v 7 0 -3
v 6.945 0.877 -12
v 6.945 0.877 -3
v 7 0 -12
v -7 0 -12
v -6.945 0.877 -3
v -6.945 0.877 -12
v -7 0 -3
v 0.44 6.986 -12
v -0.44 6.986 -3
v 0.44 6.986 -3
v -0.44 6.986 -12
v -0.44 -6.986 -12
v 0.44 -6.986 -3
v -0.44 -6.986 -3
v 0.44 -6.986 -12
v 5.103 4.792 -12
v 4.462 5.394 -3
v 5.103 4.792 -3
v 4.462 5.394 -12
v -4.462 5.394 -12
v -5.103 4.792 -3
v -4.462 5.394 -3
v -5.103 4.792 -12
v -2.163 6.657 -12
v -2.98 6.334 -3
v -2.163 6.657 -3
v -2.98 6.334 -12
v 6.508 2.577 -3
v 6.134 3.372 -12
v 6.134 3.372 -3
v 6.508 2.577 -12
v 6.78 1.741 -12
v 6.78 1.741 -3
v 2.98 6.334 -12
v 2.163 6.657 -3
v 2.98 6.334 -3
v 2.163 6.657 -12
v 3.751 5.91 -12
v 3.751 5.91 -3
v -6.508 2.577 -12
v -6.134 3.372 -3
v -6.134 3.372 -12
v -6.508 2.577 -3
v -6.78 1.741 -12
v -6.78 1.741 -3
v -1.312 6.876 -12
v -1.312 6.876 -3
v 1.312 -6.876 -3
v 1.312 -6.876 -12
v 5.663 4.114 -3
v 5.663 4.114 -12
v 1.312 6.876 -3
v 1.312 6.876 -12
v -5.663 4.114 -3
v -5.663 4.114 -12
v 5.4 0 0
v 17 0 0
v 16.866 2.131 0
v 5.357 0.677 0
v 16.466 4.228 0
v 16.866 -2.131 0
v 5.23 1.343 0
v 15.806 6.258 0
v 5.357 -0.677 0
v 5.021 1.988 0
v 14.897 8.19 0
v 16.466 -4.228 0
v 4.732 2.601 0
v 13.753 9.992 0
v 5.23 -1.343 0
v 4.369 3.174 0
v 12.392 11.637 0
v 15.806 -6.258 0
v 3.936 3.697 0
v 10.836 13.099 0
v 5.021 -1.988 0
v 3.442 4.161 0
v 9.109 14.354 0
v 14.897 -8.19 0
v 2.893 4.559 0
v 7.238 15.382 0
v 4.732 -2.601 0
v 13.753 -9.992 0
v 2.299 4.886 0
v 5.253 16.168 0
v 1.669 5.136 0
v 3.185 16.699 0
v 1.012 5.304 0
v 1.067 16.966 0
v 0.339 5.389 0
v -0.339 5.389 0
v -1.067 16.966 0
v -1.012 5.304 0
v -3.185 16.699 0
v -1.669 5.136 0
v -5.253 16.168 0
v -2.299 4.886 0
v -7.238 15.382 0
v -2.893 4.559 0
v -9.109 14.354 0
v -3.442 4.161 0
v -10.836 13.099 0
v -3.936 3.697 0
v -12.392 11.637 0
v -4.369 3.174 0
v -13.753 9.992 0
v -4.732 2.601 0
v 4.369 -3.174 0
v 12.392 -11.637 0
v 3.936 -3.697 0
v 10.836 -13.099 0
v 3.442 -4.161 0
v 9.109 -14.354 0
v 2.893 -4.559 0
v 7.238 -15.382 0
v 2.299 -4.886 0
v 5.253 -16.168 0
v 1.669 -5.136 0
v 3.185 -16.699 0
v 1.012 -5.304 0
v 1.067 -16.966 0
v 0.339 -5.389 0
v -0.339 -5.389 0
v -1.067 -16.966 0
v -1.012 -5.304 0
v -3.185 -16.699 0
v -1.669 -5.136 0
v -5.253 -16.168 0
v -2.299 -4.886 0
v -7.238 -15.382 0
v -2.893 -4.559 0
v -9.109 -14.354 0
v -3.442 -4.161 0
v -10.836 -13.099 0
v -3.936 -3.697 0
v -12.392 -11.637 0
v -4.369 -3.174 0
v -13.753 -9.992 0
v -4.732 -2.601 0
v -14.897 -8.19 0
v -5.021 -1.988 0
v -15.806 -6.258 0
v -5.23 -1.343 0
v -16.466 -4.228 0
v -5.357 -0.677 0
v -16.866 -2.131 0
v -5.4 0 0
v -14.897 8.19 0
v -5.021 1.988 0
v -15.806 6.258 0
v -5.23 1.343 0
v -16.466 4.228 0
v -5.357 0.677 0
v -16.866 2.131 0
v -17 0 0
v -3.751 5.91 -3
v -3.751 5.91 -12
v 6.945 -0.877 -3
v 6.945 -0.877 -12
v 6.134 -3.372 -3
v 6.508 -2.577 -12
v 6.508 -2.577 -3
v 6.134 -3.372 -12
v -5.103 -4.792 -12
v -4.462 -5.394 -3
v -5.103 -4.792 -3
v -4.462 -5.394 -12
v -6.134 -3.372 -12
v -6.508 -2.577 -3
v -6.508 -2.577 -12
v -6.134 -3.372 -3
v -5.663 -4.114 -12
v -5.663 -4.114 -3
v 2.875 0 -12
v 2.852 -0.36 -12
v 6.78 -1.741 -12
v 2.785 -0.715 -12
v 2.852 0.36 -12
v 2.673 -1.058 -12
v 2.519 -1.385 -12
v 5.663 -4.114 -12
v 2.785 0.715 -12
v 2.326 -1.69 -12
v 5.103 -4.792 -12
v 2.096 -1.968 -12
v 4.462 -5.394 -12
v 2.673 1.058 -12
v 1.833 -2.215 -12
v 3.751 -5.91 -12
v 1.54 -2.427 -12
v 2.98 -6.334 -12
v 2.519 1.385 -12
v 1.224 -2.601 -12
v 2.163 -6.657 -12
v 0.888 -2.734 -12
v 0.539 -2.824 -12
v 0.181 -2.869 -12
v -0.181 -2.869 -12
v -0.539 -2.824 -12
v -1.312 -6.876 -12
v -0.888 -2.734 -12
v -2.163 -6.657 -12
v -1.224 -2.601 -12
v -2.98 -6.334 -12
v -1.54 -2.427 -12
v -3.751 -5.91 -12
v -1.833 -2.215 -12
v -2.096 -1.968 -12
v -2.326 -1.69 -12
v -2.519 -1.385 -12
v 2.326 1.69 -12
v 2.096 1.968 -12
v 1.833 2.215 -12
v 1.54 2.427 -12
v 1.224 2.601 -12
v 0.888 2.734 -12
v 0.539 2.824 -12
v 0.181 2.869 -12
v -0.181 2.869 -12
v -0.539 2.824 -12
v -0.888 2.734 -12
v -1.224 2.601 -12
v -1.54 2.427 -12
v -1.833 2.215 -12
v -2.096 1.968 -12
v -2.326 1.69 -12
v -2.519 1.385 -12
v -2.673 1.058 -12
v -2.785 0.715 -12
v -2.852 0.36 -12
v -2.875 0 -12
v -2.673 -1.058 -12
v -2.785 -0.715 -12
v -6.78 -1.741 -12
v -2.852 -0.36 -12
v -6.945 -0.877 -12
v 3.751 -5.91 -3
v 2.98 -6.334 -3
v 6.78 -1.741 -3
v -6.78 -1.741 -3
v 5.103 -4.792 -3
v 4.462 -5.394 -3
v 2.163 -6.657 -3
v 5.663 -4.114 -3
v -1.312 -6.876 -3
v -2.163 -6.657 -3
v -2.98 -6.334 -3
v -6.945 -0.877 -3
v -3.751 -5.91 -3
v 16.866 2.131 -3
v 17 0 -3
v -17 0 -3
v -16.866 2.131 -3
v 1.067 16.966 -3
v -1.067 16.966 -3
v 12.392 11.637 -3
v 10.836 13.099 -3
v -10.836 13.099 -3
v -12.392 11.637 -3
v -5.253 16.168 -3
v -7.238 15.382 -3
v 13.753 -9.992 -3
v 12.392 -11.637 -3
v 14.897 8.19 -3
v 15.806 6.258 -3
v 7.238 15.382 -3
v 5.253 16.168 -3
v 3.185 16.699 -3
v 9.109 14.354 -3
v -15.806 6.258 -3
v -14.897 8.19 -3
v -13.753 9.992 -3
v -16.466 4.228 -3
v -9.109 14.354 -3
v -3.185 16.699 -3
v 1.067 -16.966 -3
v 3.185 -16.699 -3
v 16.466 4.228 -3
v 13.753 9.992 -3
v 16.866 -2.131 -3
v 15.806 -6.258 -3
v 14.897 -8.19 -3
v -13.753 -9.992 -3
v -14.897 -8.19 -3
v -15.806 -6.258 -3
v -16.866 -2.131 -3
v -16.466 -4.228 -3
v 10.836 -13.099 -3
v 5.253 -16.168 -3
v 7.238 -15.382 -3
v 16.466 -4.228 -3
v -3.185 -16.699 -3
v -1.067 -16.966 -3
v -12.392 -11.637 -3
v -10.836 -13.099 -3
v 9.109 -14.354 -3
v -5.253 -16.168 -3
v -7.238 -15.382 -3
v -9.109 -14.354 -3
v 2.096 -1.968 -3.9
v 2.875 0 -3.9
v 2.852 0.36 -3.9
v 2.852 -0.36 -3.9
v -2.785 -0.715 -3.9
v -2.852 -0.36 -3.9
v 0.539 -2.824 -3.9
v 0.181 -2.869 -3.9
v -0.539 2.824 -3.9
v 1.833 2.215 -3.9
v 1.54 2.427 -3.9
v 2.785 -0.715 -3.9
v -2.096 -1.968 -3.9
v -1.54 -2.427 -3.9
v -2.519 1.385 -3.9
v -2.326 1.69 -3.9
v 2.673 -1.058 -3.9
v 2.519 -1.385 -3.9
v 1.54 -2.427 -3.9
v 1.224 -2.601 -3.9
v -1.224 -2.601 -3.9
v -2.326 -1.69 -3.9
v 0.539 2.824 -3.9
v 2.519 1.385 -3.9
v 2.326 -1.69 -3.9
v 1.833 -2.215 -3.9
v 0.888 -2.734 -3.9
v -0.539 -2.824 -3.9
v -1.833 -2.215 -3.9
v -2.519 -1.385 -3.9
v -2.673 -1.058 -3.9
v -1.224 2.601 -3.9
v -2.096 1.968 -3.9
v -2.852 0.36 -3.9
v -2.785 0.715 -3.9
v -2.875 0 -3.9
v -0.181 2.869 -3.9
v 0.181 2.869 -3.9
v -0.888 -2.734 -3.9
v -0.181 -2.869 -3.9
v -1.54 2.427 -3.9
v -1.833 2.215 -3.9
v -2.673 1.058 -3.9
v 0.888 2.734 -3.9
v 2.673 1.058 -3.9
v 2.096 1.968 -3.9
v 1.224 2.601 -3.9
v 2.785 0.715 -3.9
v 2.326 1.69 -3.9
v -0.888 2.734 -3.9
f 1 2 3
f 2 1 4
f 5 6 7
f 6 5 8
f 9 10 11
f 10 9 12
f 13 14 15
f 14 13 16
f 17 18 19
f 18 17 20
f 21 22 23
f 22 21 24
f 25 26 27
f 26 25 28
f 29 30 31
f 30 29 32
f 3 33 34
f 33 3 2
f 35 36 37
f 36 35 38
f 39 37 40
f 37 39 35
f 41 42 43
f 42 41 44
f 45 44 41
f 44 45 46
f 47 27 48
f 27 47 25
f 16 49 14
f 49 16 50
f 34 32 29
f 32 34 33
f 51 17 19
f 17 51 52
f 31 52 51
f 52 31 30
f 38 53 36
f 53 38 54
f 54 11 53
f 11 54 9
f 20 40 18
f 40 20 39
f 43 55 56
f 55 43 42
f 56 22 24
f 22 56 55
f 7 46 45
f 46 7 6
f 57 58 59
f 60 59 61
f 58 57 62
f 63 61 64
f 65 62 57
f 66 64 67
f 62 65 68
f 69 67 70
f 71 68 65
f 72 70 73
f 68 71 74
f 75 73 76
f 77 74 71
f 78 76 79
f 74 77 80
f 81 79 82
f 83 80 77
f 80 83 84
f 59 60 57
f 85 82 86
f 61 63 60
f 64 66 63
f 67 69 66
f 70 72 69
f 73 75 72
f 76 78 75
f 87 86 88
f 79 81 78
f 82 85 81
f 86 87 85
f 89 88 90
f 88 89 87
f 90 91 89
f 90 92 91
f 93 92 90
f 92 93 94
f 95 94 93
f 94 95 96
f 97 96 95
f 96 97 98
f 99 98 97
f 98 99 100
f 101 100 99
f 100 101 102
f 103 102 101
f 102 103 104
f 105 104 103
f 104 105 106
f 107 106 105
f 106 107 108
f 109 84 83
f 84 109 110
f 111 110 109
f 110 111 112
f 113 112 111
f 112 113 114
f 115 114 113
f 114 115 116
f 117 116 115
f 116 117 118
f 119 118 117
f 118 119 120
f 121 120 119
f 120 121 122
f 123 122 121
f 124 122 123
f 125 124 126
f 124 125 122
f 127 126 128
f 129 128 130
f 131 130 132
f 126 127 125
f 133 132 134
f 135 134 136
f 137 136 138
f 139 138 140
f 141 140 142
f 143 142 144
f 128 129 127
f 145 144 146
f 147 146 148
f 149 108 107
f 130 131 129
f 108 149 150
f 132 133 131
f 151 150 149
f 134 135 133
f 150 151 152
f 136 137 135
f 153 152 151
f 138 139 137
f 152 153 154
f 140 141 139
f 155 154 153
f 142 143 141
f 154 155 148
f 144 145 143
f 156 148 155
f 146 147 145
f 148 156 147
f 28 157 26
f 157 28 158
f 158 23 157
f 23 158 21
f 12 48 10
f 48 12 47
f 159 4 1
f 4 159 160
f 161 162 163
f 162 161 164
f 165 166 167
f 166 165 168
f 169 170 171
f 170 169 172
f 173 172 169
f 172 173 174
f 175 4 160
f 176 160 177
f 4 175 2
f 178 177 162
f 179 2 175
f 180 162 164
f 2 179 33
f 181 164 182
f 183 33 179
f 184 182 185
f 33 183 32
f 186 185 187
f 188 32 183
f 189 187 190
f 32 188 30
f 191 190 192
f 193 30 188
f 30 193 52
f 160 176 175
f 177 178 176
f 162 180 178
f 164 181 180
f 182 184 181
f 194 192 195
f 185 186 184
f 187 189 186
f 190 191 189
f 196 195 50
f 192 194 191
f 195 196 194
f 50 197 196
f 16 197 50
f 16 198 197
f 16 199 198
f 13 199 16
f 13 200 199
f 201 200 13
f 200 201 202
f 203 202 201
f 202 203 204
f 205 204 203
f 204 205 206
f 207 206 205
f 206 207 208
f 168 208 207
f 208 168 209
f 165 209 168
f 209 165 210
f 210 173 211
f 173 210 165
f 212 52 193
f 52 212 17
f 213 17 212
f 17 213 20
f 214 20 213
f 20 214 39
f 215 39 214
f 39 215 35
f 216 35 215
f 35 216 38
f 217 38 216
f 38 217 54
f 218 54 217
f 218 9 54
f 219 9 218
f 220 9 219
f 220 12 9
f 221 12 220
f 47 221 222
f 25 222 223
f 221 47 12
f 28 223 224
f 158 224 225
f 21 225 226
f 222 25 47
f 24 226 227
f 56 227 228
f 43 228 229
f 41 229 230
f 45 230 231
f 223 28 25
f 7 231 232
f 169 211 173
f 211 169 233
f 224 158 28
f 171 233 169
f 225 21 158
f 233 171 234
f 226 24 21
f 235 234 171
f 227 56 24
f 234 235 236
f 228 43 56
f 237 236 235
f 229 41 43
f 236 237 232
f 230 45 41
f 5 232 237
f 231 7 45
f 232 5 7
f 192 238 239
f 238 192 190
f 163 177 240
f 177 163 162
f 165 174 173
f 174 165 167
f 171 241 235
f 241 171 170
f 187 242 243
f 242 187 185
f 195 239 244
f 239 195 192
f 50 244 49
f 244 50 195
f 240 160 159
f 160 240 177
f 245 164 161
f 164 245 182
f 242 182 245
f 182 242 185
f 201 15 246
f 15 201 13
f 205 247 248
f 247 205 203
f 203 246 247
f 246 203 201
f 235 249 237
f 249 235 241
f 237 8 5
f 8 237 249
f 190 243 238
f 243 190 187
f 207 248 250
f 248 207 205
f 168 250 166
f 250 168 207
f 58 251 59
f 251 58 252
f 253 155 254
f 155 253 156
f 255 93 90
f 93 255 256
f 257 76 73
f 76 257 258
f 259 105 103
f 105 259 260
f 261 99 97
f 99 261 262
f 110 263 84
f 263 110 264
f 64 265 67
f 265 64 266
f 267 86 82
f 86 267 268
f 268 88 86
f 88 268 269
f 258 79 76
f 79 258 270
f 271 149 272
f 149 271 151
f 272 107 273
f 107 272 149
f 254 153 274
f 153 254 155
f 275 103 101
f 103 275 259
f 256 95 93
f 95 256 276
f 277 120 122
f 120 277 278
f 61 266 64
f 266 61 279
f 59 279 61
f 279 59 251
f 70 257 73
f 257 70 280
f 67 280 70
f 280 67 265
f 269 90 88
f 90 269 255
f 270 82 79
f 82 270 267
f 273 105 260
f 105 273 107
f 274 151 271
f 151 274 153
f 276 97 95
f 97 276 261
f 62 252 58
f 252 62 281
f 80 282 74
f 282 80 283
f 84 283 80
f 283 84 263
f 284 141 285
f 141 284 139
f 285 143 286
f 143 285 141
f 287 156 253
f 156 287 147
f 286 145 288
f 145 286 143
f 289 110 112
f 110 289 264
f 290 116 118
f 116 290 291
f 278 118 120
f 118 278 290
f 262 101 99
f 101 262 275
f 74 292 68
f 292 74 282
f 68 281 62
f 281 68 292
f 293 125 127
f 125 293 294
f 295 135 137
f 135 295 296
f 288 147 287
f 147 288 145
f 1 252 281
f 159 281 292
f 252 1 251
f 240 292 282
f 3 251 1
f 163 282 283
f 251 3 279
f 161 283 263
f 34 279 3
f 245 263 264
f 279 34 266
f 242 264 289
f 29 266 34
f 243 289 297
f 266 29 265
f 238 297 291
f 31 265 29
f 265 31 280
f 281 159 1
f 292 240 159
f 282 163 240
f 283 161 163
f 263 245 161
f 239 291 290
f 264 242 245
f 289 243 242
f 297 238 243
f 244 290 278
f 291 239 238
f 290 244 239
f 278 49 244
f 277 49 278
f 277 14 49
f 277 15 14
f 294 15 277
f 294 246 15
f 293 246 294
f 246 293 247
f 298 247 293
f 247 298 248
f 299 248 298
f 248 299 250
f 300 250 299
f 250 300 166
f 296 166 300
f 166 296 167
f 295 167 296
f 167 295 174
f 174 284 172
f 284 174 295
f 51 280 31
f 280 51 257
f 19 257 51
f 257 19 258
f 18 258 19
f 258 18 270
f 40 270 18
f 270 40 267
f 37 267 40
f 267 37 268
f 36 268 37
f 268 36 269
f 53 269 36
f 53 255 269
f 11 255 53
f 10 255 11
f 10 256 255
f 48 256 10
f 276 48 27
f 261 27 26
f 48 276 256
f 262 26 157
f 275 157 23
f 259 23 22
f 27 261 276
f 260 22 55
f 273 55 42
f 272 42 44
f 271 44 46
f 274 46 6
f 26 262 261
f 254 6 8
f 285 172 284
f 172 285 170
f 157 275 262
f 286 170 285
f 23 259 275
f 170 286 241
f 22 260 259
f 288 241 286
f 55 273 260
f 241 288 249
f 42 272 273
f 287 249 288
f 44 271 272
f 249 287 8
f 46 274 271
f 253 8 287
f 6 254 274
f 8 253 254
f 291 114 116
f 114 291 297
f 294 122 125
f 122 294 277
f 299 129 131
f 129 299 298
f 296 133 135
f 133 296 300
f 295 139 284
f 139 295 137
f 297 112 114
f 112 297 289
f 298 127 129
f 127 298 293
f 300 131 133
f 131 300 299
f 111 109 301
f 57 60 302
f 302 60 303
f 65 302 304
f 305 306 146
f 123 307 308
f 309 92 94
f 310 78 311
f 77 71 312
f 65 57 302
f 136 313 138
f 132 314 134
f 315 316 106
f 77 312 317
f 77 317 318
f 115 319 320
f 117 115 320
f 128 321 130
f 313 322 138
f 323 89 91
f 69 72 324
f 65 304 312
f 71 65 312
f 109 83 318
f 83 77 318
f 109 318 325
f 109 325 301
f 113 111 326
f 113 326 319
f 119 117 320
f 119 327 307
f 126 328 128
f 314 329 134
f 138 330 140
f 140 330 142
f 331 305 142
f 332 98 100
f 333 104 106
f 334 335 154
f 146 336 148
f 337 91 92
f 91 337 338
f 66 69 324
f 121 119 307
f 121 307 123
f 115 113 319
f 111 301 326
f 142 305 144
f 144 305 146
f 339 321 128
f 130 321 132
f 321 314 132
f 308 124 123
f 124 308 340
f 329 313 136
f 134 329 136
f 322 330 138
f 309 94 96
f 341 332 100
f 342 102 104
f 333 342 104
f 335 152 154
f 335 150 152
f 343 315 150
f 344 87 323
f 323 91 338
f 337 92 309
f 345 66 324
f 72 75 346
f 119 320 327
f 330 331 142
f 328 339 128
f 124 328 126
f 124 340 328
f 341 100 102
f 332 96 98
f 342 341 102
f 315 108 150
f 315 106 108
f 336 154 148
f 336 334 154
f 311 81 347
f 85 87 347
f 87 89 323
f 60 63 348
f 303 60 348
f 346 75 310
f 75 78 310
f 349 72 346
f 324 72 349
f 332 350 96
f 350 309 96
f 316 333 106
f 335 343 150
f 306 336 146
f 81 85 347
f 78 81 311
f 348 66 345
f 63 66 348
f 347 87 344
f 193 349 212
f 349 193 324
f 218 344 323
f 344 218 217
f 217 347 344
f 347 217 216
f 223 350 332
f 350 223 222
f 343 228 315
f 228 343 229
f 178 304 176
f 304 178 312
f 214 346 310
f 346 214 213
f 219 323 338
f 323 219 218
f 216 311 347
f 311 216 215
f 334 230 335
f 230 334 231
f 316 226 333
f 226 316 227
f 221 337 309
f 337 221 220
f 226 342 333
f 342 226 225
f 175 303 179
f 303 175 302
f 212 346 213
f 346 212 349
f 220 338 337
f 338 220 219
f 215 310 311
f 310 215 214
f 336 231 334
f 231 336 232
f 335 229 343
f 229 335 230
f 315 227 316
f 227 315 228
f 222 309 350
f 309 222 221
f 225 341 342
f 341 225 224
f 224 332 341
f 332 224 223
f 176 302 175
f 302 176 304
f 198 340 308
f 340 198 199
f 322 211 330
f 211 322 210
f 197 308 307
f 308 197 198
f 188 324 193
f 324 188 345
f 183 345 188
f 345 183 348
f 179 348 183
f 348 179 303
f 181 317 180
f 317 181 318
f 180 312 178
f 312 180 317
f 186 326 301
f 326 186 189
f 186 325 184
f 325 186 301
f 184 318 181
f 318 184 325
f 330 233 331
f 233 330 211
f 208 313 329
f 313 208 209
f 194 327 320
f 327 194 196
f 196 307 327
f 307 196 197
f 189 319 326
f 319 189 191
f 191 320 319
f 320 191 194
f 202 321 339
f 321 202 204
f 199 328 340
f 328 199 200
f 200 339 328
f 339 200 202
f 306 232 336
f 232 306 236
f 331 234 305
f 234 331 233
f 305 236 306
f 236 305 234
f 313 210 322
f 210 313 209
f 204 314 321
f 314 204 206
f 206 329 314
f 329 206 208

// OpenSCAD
$fn = 50;


difference() {
	union() {
		translate(v = [0, 0, -12.0000000000]) {
			cylinder(h = 12, r = 7.0000000000);
		}
		translate(v = [0, 0, -3.0000000000]) {
			cylinder(h = 3, r = 17.0000000000);
		}
	}
	union() {
		translate(v = [0, 0, 0]) {
			rotate(a = [0, 0, 0]) {
				difference() {
					union() {
						#translate(v = [0, 0, -12.0000000000]) {
							cylinder(h = 12, r = 2.6000000000);
						}
						#translate(v = [0, 0, -3.9000000000]) {
							cylinder(h = 3.9000000000, r = 7.0000000000, r1 = 2.8750000000, r2 = 5.4000000000);
						}
						#translate(v = [0, 0, -12.0000000000]) {
							cylinder(h = 12, r = 2.8750000000);
						}
						#translate(v = [0, 0, -12.0000000000]) {
							cylinder(h = 12, r = 2.6000000000);
						}
					}
					union();
				}
			}
		}
	}
}
